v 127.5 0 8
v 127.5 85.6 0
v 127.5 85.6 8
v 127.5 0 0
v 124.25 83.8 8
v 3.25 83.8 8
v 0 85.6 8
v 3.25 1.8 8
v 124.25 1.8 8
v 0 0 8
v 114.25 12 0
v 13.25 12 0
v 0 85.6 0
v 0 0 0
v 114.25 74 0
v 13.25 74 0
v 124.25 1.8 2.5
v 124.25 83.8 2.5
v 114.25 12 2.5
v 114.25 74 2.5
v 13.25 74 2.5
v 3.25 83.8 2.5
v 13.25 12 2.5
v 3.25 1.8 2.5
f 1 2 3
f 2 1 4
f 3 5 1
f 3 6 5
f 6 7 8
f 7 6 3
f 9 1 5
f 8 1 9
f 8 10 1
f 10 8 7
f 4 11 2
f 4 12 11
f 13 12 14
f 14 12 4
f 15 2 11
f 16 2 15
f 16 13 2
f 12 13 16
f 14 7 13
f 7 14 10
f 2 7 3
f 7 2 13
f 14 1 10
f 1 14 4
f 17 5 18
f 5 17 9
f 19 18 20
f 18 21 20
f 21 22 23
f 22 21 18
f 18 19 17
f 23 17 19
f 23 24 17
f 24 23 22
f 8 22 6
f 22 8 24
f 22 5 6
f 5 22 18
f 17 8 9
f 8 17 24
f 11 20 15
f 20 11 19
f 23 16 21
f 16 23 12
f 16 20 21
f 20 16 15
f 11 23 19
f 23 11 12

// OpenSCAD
/* V1, too big by about .5 mm in x & y
difference() {
    cube([128, 86, 8]);
    translate([3.5, 2, 2.5])
        cube([121, 82, 8]);
    translate([13.5, 12, -.05])
        cube([101, 62, 8.1]);
}
*/
difference() {
    cube([127.5, 85.6, 8]);
    translate([3.25, 1.8, 2.5])
        cube([121, 82, 8]);
    translate([13.25, 12, -.05])
        cube([101, 62, 8.1]);
}
